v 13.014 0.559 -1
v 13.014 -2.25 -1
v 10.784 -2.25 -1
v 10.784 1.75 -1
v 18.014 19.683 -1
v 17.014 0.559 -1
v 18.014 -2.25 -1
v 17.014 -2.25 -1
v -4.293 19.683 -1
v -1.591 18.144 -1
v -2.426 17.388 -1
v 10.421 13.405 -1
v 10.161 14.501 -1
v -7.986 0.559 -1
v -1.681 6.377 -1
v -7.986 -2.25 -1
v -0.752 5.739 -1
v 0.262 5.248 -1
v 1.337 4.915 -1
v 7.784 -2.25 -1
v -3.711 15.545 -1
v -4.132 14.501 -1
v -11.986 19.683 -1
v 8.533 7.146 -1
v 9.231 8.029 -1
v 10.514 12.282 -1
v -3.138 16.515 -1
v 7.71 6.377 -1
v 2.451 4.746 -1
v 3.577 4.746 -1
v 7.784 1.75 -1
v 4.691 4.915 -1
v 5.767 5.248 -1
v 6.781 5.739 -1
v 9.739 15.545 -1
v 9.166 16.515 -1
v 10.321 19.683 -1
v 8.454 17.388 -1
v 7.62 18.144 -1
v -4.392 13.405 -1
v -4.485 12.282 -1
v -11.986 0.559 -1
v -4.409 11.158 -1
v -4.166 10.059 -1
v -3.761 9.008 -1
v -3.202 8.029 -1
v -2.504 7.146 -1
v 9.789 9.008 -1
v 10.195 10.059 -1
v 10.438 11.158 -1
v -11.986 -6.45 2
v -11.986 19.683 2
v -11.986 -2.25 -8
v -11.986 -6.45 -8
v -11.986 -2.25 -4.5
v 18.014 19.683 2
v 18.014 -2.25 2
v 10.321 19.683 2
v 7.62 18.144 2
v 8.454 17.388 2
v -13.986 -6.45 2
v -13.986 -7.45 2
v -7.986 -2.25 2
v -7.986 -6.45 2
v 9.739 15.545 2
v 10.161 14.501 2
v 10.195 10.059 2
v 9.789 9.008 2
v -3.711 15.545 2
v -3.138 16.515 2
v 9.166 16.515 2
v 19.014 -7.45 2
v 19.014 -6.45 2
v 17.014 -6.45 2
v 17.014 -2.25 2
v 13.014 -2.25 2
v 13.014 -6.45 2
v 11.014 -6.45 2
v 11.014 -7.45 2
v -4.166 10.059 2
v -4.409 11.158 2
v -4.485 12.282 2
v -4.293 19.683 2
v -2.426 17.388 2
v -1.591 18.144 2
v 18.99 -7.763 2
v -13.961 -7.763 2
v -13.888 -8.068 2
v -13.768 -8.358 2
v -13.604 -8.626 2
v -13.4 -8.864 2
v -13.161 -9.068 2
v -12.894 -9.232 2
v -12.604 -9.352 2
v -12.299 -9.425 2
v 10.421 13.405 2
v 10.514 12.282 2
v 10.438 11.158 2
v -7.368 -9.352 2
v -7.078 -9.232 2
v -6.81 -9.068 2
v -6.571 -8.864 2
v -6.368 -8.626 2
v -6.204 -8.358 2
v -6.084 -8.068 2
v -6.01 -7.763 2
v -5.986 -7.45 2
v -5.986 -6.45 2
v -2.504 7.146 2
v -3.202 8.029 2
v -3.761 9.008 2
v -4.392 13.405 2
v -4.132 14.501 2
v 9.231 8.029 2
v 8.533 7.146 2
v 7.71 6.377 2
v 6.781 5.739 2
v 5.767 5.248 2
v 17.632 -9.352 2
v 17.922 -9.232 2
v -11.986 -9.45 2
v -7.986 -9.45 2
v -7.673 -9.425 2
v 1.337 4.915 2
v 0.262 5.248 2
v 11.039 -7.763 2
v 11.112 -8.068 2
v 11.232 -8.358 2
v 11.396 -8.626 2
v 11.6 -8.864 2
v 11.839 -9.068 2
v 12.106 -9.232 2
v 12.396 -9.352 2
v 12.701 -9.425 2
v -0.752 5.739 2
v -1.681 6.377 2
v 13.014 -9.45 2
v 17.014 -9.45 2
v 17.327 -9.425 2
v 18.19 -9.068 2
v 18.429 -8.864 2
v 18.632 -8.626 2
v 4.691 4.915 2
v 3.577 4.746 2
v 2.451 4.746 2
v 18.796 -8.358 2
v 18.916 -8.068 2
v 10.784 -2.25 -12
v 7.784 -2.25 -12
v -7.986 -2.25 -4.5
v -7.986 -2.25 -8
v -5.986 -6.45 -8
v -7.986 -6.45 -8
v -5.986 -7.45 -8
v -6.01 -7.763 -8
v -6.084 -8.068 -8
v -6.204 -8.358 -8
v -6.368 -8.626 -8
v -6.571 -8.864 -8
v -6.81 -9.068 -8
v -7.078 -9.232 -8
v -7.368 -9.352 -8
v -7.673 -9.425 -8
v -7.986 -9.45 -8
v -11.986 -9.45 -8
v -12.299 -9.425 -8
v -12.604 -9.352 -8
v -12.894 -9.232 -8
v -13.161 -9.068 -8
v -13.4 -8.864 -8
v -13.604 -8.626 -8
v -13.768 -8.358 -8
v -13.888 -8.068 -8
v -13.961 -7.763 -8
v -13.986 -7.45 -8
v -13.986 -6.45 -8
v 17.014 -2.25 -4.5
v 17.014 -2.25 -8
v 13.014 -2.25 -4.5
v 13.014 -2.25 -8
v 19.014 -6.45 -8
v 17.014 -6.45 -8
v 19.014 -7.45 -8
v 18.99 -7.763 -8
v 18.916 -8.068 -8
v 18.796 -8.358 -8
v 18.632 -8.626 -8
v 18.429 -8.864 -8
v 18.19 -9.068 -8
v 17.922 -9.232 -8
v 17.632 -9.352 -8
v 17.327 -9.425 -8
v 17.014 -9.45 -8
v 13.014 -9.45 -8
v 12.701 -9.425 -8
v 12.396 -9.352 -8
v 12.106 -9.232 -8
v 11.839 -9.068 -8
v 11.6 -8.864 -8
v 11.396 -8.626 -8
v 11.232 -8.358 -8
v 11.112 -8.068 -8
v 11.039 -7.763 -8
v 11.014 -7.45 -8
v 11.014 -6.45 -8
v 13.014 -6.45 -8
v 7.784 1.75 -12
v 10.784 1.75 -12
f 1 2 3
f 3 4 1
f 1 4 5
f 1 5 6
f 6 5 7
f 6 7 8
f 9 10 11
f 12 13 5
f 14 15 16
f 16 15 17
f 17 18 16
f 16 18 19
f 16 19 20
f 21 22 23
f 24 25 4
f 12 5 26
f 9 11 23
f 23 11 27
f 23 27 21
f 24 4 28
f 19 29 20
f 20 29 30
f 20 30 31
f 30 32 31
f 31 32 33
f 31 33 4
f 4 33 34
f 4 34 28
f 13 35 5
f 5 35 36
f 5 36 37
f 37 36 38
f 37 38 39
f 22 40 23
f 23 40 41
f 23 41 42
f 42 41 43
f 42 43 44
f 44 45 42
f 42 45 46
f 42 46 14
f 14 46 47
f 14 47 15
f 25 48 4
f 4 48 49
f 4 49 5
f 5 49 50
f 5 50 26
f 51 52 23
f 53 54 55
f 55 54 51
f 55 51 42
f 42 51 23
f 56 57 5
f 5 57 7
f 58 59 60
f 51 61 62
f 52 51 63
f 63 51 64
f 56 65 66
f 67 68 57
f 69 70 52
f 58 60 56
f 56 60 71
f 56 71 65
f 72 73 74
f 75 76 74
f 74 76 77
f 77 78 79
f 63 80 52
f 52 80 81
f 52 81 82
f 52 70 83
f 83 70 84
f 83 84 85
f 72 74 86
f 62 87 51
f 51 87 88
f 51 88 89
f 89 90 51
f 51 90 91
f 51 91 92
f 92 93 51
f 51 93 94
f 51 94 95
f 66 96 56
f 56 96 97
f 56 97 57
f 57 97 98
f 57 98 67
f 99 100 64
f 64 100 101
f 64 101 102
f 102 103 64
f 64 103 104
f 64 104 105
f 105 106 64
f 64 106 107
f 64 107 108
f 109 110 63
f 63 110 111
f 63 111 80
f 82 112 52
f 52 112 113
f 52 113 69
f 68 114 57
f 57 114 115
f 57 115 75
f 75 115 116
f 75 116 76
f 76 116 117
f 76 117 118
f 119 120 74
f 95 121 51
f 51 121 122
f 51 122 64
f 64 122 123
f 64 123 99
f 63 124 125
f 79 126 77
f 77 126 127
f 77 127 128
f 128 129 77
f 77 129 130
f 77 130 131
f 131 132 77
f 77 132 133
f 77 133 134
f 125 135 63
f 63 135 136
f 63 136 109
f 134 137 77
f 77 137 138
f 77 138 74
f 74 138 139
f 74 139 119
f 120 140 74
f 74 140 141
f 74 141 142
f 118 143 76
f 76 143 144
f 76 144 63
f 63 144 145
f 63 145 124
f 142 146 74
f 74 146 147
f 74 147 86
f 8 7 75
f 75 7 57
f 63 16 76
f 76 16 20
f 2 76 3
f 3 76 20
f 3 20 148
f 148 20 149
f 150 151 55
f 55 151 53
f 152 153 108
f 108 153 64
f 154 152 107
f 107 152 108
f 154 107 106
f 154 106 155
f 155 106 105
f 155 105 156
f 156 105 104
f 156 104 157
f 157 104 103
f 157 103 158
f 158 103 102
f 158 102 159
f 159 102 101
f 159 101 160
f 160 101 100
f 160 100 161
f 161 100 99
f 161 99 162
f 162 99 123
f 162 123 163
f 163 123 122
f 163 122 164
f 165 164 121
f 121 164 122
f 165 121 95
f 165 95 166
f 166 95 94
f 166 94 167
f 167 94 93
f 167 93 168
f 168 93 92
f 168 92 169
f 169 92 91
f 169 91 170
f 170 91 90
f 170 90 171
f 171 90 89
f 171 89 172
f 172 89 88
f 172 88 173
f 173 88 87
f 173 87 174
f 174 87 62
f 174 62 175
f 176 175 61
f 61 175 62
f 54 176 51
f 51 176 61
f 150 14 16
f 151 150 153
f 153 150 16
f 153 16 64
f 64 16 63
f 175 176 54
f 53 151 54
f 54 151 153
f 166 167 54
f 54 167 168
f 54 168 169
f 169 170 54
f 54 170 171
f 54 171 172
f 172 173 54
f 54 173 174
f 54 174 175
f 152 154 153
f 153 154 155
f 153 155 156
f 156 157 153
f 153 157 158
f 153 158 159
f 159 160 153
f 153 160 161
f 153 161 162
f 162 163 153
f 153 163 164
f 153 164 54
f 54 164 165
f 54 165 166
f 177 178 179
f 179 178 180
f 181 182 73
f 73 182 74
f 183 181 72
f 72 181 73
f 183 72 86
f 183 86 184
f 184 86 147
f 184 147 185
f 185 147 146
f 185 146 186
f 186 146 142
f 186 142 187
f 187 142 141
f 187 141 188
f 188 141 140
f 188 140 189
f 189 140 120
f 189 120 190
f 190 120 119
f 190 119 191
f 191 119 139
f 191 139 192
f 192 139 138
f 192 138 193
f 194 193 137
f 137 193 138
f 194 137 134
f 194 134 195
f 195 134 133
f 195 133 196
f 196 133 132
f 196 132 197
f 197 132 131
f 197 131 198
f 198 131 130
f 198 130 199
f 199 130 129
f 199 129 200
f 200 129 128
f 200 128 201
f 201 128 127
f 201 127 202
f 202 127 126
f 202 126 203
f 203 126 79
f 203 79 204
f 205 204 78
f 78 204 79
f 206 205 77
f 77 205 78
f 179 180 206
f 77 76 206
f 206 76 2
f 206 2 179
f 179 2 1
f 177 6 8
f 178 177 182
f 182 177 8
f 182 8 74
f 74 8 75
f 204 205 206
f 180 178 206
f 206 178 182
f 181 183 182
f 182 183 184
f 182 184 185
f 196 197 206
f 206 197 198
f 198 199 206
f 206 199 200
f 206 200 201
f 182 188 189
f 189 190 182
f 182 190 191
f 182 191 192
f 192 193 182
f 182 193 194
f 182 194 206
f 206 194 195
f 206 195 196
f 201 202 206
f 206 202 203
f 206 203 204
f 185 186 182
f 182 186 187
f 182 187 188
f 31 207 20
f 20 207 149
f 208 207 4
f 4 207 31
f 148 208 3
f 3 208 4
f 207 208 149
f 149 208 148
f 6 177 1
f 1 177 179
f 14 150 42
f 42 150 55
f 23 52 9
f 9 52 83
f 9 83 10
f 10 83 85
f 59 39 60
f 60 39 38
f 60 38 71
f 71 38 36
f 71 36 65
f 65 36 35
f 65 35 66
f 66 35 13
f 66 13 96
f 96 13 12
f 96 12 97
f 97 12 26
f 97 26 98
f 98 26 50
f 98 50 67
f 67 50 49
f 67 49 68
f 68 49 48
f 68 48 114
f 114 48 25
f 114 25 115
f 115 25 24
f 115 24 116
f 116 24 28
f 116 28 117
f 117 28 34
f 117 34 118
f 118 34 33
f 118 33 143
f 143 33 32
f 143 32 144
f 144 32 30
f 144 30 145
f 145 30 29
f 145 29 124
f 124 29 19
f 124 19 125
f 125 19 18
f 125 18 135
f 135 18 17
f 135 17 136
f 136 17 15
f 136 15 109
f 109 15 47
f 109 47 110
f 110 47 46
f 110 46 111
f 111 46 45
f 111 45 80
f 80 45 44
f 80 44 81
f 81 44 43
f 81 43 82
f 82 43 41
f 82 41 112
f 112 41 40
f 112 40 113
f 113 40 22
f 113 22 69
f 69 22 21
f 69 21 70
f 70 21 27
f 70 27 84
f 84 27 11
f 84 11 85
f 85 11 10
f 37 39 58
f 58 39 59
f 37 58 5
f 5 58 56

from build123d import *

# Parameters (mm, degrees)
EXTRUDE_1_DEPTH      = 2
EXTRUDE_1_DEPTH_BACK = 1
BOSS_EXTRUDE1_DEPTH  = 10
LPATTERN1_COUNT      = 2
LPATTERN1_PITCH      = 25
SKETCH2_W            = 3
SKETCH2_H            = 4
BOSS_EXTRUDE2_DEPTH  = 14
BOSS_EXTRUDE3_DEPTH  = 4
LPATTERN2_COUNT      = 2
LPATTERN2_PITCH      = 25
CUT_EXTRUDE1_DEPTH   = 10


with BuildPart() as part:
    # Эскиз2 → Бобышка-Вытянуть1 (new, two sides: drawn at the far end of the back side and taken through both)
    with BuildSketch(Plane.XY.offset(-EXTRUDE_1_DEPTH_BACK)):
        Polygon((18.01429863, 0), (18.01429863, 26.7), (-11.98570137, 26.7), (-11.98570137, -2.25), (18.01429863, -2.25), align=None)
    extrude(amount=EXTRUDE_1_DEPTH + EXTRUDE_1_DEPTH_BACK)

    # Sketch1 → Boss-Extrude1 (add)
    with BuildSketch(Plane.XY.offset(2)):
        with BuildLine():
            Line((-5.98570137, -6.45), (-7.98570137, -6.45))
            Line((-7.98570137, -6.45), (-7.98570137, -2.25))
            Line((-7.98570137, -2.25), (-11.98570137, -2.25))
            Line((-11.98570137, -2.25), (-11.98570137, -6.45))
            Line((-11.98570137, -6.45), (-13.98570137, -6.45))
            Line((-13.98570137, -6.45), (-13.98570137, -7.45))
            ThreePointArc((-13.98570137, -7.45), (-13.399914932, -8.864213562), (-11.98570137, -9.45))
            Line((-11.98570137, -9.45), (-7.98570137, -9.45))
            ThreePointArc((-7.98570137, -9.45), (-6.571487808, -8.864213562), (-5.98570137, -7.45))
            Line((-5.98570137, -7.45), (-5.98570137, -6.45))
        make_face()
    boss_extrude1 = extrude(amount=-BOSS_EXTRUDE1_DEPTH)

    # LPattern1: Boss-Extrude1 ×2
    with Locations(*[(i * LPATTERN1_PITCH, 0, 0) for i in range(1, LPATTERN1_COUNT)]):
        add(boss_extrude1)

    # Sketch2 → Boss-Extrude2 (add)
    with BuildSketch(Plane(origin=(0, 0, 2), x_dir=(-1, 0, 0), z_dir=(0, 0, -1))):
        with Locations((-9.283605158, -0.25)):
            Rectangle(SKETCH2_W, SKETCH2_H)
    extrude(amount=BOSS_EXTRUDE2_DEPTH)

    # Sketch3 → Boss-Extrude3 (add)
    with BuildSketch(Plane.ZY.offset(-13.01429863)):
        Polygon((-4.5, -2.25), (-1, -2.25), (-1, 0.558861968), align=None)
    boss_extrude3 = extrude(amount=-BOSS_EXTRUDE3_DEPTH)

    # LPattern2: Boss-Extrude3 ×2
    with Locations(*[(-i * LPATTERN2_PITCH, 0, 0) for i in range(1, LPATTERN2_COUNT)]):
        add(boss_extrude3)

    # Sketch4 → Cut-Extrude1 (cut)
    with BuildSketch(Plane(origin=(0, 0, -1), x_dir=(-1, 0, 0), z_dir=(0, 0, -1))):
        with BuildLine():
            Line((-10.321327868, 19.682942102), (-7.619737196, 18.144453997))
            ThreePointArc((-7.619737196, 18.144453997), (-9.751909083, 15.519632814), (-10.51429863, 12.225))
            ThreePointArc((-10.51429863, 12.225), (-3.01429863, 4.725), (4.48570137, 12.225))
            ThreePointArc((4.48570137, 12.225), (3.723311823, 15.519632814), (1.591139935, 18.144453997))
            Line((1.591139935, 18.144453997), (4.292730608, 19.682942102))
            Line((4.292730608, 19.682942102), (13.385264368, 19.682942102))
            Line((13.385264368, 19.682942102), (19.56091022, 30.423181844))
            Line((19.56091022, 30.423181844), (-22.587954431, 29.74009492))
            Line((-22.587954431, 29.74009492), (-18.01429863, 19.682942102))
            Line((-18.01429863, 19.682942102), (-10.321327868, 19.682942102))
        make_face()
    extrude(amount=-CUT_EXTRUDE1_DEPTH, mode=Mode.SUBTRACT)


solid = part.part
